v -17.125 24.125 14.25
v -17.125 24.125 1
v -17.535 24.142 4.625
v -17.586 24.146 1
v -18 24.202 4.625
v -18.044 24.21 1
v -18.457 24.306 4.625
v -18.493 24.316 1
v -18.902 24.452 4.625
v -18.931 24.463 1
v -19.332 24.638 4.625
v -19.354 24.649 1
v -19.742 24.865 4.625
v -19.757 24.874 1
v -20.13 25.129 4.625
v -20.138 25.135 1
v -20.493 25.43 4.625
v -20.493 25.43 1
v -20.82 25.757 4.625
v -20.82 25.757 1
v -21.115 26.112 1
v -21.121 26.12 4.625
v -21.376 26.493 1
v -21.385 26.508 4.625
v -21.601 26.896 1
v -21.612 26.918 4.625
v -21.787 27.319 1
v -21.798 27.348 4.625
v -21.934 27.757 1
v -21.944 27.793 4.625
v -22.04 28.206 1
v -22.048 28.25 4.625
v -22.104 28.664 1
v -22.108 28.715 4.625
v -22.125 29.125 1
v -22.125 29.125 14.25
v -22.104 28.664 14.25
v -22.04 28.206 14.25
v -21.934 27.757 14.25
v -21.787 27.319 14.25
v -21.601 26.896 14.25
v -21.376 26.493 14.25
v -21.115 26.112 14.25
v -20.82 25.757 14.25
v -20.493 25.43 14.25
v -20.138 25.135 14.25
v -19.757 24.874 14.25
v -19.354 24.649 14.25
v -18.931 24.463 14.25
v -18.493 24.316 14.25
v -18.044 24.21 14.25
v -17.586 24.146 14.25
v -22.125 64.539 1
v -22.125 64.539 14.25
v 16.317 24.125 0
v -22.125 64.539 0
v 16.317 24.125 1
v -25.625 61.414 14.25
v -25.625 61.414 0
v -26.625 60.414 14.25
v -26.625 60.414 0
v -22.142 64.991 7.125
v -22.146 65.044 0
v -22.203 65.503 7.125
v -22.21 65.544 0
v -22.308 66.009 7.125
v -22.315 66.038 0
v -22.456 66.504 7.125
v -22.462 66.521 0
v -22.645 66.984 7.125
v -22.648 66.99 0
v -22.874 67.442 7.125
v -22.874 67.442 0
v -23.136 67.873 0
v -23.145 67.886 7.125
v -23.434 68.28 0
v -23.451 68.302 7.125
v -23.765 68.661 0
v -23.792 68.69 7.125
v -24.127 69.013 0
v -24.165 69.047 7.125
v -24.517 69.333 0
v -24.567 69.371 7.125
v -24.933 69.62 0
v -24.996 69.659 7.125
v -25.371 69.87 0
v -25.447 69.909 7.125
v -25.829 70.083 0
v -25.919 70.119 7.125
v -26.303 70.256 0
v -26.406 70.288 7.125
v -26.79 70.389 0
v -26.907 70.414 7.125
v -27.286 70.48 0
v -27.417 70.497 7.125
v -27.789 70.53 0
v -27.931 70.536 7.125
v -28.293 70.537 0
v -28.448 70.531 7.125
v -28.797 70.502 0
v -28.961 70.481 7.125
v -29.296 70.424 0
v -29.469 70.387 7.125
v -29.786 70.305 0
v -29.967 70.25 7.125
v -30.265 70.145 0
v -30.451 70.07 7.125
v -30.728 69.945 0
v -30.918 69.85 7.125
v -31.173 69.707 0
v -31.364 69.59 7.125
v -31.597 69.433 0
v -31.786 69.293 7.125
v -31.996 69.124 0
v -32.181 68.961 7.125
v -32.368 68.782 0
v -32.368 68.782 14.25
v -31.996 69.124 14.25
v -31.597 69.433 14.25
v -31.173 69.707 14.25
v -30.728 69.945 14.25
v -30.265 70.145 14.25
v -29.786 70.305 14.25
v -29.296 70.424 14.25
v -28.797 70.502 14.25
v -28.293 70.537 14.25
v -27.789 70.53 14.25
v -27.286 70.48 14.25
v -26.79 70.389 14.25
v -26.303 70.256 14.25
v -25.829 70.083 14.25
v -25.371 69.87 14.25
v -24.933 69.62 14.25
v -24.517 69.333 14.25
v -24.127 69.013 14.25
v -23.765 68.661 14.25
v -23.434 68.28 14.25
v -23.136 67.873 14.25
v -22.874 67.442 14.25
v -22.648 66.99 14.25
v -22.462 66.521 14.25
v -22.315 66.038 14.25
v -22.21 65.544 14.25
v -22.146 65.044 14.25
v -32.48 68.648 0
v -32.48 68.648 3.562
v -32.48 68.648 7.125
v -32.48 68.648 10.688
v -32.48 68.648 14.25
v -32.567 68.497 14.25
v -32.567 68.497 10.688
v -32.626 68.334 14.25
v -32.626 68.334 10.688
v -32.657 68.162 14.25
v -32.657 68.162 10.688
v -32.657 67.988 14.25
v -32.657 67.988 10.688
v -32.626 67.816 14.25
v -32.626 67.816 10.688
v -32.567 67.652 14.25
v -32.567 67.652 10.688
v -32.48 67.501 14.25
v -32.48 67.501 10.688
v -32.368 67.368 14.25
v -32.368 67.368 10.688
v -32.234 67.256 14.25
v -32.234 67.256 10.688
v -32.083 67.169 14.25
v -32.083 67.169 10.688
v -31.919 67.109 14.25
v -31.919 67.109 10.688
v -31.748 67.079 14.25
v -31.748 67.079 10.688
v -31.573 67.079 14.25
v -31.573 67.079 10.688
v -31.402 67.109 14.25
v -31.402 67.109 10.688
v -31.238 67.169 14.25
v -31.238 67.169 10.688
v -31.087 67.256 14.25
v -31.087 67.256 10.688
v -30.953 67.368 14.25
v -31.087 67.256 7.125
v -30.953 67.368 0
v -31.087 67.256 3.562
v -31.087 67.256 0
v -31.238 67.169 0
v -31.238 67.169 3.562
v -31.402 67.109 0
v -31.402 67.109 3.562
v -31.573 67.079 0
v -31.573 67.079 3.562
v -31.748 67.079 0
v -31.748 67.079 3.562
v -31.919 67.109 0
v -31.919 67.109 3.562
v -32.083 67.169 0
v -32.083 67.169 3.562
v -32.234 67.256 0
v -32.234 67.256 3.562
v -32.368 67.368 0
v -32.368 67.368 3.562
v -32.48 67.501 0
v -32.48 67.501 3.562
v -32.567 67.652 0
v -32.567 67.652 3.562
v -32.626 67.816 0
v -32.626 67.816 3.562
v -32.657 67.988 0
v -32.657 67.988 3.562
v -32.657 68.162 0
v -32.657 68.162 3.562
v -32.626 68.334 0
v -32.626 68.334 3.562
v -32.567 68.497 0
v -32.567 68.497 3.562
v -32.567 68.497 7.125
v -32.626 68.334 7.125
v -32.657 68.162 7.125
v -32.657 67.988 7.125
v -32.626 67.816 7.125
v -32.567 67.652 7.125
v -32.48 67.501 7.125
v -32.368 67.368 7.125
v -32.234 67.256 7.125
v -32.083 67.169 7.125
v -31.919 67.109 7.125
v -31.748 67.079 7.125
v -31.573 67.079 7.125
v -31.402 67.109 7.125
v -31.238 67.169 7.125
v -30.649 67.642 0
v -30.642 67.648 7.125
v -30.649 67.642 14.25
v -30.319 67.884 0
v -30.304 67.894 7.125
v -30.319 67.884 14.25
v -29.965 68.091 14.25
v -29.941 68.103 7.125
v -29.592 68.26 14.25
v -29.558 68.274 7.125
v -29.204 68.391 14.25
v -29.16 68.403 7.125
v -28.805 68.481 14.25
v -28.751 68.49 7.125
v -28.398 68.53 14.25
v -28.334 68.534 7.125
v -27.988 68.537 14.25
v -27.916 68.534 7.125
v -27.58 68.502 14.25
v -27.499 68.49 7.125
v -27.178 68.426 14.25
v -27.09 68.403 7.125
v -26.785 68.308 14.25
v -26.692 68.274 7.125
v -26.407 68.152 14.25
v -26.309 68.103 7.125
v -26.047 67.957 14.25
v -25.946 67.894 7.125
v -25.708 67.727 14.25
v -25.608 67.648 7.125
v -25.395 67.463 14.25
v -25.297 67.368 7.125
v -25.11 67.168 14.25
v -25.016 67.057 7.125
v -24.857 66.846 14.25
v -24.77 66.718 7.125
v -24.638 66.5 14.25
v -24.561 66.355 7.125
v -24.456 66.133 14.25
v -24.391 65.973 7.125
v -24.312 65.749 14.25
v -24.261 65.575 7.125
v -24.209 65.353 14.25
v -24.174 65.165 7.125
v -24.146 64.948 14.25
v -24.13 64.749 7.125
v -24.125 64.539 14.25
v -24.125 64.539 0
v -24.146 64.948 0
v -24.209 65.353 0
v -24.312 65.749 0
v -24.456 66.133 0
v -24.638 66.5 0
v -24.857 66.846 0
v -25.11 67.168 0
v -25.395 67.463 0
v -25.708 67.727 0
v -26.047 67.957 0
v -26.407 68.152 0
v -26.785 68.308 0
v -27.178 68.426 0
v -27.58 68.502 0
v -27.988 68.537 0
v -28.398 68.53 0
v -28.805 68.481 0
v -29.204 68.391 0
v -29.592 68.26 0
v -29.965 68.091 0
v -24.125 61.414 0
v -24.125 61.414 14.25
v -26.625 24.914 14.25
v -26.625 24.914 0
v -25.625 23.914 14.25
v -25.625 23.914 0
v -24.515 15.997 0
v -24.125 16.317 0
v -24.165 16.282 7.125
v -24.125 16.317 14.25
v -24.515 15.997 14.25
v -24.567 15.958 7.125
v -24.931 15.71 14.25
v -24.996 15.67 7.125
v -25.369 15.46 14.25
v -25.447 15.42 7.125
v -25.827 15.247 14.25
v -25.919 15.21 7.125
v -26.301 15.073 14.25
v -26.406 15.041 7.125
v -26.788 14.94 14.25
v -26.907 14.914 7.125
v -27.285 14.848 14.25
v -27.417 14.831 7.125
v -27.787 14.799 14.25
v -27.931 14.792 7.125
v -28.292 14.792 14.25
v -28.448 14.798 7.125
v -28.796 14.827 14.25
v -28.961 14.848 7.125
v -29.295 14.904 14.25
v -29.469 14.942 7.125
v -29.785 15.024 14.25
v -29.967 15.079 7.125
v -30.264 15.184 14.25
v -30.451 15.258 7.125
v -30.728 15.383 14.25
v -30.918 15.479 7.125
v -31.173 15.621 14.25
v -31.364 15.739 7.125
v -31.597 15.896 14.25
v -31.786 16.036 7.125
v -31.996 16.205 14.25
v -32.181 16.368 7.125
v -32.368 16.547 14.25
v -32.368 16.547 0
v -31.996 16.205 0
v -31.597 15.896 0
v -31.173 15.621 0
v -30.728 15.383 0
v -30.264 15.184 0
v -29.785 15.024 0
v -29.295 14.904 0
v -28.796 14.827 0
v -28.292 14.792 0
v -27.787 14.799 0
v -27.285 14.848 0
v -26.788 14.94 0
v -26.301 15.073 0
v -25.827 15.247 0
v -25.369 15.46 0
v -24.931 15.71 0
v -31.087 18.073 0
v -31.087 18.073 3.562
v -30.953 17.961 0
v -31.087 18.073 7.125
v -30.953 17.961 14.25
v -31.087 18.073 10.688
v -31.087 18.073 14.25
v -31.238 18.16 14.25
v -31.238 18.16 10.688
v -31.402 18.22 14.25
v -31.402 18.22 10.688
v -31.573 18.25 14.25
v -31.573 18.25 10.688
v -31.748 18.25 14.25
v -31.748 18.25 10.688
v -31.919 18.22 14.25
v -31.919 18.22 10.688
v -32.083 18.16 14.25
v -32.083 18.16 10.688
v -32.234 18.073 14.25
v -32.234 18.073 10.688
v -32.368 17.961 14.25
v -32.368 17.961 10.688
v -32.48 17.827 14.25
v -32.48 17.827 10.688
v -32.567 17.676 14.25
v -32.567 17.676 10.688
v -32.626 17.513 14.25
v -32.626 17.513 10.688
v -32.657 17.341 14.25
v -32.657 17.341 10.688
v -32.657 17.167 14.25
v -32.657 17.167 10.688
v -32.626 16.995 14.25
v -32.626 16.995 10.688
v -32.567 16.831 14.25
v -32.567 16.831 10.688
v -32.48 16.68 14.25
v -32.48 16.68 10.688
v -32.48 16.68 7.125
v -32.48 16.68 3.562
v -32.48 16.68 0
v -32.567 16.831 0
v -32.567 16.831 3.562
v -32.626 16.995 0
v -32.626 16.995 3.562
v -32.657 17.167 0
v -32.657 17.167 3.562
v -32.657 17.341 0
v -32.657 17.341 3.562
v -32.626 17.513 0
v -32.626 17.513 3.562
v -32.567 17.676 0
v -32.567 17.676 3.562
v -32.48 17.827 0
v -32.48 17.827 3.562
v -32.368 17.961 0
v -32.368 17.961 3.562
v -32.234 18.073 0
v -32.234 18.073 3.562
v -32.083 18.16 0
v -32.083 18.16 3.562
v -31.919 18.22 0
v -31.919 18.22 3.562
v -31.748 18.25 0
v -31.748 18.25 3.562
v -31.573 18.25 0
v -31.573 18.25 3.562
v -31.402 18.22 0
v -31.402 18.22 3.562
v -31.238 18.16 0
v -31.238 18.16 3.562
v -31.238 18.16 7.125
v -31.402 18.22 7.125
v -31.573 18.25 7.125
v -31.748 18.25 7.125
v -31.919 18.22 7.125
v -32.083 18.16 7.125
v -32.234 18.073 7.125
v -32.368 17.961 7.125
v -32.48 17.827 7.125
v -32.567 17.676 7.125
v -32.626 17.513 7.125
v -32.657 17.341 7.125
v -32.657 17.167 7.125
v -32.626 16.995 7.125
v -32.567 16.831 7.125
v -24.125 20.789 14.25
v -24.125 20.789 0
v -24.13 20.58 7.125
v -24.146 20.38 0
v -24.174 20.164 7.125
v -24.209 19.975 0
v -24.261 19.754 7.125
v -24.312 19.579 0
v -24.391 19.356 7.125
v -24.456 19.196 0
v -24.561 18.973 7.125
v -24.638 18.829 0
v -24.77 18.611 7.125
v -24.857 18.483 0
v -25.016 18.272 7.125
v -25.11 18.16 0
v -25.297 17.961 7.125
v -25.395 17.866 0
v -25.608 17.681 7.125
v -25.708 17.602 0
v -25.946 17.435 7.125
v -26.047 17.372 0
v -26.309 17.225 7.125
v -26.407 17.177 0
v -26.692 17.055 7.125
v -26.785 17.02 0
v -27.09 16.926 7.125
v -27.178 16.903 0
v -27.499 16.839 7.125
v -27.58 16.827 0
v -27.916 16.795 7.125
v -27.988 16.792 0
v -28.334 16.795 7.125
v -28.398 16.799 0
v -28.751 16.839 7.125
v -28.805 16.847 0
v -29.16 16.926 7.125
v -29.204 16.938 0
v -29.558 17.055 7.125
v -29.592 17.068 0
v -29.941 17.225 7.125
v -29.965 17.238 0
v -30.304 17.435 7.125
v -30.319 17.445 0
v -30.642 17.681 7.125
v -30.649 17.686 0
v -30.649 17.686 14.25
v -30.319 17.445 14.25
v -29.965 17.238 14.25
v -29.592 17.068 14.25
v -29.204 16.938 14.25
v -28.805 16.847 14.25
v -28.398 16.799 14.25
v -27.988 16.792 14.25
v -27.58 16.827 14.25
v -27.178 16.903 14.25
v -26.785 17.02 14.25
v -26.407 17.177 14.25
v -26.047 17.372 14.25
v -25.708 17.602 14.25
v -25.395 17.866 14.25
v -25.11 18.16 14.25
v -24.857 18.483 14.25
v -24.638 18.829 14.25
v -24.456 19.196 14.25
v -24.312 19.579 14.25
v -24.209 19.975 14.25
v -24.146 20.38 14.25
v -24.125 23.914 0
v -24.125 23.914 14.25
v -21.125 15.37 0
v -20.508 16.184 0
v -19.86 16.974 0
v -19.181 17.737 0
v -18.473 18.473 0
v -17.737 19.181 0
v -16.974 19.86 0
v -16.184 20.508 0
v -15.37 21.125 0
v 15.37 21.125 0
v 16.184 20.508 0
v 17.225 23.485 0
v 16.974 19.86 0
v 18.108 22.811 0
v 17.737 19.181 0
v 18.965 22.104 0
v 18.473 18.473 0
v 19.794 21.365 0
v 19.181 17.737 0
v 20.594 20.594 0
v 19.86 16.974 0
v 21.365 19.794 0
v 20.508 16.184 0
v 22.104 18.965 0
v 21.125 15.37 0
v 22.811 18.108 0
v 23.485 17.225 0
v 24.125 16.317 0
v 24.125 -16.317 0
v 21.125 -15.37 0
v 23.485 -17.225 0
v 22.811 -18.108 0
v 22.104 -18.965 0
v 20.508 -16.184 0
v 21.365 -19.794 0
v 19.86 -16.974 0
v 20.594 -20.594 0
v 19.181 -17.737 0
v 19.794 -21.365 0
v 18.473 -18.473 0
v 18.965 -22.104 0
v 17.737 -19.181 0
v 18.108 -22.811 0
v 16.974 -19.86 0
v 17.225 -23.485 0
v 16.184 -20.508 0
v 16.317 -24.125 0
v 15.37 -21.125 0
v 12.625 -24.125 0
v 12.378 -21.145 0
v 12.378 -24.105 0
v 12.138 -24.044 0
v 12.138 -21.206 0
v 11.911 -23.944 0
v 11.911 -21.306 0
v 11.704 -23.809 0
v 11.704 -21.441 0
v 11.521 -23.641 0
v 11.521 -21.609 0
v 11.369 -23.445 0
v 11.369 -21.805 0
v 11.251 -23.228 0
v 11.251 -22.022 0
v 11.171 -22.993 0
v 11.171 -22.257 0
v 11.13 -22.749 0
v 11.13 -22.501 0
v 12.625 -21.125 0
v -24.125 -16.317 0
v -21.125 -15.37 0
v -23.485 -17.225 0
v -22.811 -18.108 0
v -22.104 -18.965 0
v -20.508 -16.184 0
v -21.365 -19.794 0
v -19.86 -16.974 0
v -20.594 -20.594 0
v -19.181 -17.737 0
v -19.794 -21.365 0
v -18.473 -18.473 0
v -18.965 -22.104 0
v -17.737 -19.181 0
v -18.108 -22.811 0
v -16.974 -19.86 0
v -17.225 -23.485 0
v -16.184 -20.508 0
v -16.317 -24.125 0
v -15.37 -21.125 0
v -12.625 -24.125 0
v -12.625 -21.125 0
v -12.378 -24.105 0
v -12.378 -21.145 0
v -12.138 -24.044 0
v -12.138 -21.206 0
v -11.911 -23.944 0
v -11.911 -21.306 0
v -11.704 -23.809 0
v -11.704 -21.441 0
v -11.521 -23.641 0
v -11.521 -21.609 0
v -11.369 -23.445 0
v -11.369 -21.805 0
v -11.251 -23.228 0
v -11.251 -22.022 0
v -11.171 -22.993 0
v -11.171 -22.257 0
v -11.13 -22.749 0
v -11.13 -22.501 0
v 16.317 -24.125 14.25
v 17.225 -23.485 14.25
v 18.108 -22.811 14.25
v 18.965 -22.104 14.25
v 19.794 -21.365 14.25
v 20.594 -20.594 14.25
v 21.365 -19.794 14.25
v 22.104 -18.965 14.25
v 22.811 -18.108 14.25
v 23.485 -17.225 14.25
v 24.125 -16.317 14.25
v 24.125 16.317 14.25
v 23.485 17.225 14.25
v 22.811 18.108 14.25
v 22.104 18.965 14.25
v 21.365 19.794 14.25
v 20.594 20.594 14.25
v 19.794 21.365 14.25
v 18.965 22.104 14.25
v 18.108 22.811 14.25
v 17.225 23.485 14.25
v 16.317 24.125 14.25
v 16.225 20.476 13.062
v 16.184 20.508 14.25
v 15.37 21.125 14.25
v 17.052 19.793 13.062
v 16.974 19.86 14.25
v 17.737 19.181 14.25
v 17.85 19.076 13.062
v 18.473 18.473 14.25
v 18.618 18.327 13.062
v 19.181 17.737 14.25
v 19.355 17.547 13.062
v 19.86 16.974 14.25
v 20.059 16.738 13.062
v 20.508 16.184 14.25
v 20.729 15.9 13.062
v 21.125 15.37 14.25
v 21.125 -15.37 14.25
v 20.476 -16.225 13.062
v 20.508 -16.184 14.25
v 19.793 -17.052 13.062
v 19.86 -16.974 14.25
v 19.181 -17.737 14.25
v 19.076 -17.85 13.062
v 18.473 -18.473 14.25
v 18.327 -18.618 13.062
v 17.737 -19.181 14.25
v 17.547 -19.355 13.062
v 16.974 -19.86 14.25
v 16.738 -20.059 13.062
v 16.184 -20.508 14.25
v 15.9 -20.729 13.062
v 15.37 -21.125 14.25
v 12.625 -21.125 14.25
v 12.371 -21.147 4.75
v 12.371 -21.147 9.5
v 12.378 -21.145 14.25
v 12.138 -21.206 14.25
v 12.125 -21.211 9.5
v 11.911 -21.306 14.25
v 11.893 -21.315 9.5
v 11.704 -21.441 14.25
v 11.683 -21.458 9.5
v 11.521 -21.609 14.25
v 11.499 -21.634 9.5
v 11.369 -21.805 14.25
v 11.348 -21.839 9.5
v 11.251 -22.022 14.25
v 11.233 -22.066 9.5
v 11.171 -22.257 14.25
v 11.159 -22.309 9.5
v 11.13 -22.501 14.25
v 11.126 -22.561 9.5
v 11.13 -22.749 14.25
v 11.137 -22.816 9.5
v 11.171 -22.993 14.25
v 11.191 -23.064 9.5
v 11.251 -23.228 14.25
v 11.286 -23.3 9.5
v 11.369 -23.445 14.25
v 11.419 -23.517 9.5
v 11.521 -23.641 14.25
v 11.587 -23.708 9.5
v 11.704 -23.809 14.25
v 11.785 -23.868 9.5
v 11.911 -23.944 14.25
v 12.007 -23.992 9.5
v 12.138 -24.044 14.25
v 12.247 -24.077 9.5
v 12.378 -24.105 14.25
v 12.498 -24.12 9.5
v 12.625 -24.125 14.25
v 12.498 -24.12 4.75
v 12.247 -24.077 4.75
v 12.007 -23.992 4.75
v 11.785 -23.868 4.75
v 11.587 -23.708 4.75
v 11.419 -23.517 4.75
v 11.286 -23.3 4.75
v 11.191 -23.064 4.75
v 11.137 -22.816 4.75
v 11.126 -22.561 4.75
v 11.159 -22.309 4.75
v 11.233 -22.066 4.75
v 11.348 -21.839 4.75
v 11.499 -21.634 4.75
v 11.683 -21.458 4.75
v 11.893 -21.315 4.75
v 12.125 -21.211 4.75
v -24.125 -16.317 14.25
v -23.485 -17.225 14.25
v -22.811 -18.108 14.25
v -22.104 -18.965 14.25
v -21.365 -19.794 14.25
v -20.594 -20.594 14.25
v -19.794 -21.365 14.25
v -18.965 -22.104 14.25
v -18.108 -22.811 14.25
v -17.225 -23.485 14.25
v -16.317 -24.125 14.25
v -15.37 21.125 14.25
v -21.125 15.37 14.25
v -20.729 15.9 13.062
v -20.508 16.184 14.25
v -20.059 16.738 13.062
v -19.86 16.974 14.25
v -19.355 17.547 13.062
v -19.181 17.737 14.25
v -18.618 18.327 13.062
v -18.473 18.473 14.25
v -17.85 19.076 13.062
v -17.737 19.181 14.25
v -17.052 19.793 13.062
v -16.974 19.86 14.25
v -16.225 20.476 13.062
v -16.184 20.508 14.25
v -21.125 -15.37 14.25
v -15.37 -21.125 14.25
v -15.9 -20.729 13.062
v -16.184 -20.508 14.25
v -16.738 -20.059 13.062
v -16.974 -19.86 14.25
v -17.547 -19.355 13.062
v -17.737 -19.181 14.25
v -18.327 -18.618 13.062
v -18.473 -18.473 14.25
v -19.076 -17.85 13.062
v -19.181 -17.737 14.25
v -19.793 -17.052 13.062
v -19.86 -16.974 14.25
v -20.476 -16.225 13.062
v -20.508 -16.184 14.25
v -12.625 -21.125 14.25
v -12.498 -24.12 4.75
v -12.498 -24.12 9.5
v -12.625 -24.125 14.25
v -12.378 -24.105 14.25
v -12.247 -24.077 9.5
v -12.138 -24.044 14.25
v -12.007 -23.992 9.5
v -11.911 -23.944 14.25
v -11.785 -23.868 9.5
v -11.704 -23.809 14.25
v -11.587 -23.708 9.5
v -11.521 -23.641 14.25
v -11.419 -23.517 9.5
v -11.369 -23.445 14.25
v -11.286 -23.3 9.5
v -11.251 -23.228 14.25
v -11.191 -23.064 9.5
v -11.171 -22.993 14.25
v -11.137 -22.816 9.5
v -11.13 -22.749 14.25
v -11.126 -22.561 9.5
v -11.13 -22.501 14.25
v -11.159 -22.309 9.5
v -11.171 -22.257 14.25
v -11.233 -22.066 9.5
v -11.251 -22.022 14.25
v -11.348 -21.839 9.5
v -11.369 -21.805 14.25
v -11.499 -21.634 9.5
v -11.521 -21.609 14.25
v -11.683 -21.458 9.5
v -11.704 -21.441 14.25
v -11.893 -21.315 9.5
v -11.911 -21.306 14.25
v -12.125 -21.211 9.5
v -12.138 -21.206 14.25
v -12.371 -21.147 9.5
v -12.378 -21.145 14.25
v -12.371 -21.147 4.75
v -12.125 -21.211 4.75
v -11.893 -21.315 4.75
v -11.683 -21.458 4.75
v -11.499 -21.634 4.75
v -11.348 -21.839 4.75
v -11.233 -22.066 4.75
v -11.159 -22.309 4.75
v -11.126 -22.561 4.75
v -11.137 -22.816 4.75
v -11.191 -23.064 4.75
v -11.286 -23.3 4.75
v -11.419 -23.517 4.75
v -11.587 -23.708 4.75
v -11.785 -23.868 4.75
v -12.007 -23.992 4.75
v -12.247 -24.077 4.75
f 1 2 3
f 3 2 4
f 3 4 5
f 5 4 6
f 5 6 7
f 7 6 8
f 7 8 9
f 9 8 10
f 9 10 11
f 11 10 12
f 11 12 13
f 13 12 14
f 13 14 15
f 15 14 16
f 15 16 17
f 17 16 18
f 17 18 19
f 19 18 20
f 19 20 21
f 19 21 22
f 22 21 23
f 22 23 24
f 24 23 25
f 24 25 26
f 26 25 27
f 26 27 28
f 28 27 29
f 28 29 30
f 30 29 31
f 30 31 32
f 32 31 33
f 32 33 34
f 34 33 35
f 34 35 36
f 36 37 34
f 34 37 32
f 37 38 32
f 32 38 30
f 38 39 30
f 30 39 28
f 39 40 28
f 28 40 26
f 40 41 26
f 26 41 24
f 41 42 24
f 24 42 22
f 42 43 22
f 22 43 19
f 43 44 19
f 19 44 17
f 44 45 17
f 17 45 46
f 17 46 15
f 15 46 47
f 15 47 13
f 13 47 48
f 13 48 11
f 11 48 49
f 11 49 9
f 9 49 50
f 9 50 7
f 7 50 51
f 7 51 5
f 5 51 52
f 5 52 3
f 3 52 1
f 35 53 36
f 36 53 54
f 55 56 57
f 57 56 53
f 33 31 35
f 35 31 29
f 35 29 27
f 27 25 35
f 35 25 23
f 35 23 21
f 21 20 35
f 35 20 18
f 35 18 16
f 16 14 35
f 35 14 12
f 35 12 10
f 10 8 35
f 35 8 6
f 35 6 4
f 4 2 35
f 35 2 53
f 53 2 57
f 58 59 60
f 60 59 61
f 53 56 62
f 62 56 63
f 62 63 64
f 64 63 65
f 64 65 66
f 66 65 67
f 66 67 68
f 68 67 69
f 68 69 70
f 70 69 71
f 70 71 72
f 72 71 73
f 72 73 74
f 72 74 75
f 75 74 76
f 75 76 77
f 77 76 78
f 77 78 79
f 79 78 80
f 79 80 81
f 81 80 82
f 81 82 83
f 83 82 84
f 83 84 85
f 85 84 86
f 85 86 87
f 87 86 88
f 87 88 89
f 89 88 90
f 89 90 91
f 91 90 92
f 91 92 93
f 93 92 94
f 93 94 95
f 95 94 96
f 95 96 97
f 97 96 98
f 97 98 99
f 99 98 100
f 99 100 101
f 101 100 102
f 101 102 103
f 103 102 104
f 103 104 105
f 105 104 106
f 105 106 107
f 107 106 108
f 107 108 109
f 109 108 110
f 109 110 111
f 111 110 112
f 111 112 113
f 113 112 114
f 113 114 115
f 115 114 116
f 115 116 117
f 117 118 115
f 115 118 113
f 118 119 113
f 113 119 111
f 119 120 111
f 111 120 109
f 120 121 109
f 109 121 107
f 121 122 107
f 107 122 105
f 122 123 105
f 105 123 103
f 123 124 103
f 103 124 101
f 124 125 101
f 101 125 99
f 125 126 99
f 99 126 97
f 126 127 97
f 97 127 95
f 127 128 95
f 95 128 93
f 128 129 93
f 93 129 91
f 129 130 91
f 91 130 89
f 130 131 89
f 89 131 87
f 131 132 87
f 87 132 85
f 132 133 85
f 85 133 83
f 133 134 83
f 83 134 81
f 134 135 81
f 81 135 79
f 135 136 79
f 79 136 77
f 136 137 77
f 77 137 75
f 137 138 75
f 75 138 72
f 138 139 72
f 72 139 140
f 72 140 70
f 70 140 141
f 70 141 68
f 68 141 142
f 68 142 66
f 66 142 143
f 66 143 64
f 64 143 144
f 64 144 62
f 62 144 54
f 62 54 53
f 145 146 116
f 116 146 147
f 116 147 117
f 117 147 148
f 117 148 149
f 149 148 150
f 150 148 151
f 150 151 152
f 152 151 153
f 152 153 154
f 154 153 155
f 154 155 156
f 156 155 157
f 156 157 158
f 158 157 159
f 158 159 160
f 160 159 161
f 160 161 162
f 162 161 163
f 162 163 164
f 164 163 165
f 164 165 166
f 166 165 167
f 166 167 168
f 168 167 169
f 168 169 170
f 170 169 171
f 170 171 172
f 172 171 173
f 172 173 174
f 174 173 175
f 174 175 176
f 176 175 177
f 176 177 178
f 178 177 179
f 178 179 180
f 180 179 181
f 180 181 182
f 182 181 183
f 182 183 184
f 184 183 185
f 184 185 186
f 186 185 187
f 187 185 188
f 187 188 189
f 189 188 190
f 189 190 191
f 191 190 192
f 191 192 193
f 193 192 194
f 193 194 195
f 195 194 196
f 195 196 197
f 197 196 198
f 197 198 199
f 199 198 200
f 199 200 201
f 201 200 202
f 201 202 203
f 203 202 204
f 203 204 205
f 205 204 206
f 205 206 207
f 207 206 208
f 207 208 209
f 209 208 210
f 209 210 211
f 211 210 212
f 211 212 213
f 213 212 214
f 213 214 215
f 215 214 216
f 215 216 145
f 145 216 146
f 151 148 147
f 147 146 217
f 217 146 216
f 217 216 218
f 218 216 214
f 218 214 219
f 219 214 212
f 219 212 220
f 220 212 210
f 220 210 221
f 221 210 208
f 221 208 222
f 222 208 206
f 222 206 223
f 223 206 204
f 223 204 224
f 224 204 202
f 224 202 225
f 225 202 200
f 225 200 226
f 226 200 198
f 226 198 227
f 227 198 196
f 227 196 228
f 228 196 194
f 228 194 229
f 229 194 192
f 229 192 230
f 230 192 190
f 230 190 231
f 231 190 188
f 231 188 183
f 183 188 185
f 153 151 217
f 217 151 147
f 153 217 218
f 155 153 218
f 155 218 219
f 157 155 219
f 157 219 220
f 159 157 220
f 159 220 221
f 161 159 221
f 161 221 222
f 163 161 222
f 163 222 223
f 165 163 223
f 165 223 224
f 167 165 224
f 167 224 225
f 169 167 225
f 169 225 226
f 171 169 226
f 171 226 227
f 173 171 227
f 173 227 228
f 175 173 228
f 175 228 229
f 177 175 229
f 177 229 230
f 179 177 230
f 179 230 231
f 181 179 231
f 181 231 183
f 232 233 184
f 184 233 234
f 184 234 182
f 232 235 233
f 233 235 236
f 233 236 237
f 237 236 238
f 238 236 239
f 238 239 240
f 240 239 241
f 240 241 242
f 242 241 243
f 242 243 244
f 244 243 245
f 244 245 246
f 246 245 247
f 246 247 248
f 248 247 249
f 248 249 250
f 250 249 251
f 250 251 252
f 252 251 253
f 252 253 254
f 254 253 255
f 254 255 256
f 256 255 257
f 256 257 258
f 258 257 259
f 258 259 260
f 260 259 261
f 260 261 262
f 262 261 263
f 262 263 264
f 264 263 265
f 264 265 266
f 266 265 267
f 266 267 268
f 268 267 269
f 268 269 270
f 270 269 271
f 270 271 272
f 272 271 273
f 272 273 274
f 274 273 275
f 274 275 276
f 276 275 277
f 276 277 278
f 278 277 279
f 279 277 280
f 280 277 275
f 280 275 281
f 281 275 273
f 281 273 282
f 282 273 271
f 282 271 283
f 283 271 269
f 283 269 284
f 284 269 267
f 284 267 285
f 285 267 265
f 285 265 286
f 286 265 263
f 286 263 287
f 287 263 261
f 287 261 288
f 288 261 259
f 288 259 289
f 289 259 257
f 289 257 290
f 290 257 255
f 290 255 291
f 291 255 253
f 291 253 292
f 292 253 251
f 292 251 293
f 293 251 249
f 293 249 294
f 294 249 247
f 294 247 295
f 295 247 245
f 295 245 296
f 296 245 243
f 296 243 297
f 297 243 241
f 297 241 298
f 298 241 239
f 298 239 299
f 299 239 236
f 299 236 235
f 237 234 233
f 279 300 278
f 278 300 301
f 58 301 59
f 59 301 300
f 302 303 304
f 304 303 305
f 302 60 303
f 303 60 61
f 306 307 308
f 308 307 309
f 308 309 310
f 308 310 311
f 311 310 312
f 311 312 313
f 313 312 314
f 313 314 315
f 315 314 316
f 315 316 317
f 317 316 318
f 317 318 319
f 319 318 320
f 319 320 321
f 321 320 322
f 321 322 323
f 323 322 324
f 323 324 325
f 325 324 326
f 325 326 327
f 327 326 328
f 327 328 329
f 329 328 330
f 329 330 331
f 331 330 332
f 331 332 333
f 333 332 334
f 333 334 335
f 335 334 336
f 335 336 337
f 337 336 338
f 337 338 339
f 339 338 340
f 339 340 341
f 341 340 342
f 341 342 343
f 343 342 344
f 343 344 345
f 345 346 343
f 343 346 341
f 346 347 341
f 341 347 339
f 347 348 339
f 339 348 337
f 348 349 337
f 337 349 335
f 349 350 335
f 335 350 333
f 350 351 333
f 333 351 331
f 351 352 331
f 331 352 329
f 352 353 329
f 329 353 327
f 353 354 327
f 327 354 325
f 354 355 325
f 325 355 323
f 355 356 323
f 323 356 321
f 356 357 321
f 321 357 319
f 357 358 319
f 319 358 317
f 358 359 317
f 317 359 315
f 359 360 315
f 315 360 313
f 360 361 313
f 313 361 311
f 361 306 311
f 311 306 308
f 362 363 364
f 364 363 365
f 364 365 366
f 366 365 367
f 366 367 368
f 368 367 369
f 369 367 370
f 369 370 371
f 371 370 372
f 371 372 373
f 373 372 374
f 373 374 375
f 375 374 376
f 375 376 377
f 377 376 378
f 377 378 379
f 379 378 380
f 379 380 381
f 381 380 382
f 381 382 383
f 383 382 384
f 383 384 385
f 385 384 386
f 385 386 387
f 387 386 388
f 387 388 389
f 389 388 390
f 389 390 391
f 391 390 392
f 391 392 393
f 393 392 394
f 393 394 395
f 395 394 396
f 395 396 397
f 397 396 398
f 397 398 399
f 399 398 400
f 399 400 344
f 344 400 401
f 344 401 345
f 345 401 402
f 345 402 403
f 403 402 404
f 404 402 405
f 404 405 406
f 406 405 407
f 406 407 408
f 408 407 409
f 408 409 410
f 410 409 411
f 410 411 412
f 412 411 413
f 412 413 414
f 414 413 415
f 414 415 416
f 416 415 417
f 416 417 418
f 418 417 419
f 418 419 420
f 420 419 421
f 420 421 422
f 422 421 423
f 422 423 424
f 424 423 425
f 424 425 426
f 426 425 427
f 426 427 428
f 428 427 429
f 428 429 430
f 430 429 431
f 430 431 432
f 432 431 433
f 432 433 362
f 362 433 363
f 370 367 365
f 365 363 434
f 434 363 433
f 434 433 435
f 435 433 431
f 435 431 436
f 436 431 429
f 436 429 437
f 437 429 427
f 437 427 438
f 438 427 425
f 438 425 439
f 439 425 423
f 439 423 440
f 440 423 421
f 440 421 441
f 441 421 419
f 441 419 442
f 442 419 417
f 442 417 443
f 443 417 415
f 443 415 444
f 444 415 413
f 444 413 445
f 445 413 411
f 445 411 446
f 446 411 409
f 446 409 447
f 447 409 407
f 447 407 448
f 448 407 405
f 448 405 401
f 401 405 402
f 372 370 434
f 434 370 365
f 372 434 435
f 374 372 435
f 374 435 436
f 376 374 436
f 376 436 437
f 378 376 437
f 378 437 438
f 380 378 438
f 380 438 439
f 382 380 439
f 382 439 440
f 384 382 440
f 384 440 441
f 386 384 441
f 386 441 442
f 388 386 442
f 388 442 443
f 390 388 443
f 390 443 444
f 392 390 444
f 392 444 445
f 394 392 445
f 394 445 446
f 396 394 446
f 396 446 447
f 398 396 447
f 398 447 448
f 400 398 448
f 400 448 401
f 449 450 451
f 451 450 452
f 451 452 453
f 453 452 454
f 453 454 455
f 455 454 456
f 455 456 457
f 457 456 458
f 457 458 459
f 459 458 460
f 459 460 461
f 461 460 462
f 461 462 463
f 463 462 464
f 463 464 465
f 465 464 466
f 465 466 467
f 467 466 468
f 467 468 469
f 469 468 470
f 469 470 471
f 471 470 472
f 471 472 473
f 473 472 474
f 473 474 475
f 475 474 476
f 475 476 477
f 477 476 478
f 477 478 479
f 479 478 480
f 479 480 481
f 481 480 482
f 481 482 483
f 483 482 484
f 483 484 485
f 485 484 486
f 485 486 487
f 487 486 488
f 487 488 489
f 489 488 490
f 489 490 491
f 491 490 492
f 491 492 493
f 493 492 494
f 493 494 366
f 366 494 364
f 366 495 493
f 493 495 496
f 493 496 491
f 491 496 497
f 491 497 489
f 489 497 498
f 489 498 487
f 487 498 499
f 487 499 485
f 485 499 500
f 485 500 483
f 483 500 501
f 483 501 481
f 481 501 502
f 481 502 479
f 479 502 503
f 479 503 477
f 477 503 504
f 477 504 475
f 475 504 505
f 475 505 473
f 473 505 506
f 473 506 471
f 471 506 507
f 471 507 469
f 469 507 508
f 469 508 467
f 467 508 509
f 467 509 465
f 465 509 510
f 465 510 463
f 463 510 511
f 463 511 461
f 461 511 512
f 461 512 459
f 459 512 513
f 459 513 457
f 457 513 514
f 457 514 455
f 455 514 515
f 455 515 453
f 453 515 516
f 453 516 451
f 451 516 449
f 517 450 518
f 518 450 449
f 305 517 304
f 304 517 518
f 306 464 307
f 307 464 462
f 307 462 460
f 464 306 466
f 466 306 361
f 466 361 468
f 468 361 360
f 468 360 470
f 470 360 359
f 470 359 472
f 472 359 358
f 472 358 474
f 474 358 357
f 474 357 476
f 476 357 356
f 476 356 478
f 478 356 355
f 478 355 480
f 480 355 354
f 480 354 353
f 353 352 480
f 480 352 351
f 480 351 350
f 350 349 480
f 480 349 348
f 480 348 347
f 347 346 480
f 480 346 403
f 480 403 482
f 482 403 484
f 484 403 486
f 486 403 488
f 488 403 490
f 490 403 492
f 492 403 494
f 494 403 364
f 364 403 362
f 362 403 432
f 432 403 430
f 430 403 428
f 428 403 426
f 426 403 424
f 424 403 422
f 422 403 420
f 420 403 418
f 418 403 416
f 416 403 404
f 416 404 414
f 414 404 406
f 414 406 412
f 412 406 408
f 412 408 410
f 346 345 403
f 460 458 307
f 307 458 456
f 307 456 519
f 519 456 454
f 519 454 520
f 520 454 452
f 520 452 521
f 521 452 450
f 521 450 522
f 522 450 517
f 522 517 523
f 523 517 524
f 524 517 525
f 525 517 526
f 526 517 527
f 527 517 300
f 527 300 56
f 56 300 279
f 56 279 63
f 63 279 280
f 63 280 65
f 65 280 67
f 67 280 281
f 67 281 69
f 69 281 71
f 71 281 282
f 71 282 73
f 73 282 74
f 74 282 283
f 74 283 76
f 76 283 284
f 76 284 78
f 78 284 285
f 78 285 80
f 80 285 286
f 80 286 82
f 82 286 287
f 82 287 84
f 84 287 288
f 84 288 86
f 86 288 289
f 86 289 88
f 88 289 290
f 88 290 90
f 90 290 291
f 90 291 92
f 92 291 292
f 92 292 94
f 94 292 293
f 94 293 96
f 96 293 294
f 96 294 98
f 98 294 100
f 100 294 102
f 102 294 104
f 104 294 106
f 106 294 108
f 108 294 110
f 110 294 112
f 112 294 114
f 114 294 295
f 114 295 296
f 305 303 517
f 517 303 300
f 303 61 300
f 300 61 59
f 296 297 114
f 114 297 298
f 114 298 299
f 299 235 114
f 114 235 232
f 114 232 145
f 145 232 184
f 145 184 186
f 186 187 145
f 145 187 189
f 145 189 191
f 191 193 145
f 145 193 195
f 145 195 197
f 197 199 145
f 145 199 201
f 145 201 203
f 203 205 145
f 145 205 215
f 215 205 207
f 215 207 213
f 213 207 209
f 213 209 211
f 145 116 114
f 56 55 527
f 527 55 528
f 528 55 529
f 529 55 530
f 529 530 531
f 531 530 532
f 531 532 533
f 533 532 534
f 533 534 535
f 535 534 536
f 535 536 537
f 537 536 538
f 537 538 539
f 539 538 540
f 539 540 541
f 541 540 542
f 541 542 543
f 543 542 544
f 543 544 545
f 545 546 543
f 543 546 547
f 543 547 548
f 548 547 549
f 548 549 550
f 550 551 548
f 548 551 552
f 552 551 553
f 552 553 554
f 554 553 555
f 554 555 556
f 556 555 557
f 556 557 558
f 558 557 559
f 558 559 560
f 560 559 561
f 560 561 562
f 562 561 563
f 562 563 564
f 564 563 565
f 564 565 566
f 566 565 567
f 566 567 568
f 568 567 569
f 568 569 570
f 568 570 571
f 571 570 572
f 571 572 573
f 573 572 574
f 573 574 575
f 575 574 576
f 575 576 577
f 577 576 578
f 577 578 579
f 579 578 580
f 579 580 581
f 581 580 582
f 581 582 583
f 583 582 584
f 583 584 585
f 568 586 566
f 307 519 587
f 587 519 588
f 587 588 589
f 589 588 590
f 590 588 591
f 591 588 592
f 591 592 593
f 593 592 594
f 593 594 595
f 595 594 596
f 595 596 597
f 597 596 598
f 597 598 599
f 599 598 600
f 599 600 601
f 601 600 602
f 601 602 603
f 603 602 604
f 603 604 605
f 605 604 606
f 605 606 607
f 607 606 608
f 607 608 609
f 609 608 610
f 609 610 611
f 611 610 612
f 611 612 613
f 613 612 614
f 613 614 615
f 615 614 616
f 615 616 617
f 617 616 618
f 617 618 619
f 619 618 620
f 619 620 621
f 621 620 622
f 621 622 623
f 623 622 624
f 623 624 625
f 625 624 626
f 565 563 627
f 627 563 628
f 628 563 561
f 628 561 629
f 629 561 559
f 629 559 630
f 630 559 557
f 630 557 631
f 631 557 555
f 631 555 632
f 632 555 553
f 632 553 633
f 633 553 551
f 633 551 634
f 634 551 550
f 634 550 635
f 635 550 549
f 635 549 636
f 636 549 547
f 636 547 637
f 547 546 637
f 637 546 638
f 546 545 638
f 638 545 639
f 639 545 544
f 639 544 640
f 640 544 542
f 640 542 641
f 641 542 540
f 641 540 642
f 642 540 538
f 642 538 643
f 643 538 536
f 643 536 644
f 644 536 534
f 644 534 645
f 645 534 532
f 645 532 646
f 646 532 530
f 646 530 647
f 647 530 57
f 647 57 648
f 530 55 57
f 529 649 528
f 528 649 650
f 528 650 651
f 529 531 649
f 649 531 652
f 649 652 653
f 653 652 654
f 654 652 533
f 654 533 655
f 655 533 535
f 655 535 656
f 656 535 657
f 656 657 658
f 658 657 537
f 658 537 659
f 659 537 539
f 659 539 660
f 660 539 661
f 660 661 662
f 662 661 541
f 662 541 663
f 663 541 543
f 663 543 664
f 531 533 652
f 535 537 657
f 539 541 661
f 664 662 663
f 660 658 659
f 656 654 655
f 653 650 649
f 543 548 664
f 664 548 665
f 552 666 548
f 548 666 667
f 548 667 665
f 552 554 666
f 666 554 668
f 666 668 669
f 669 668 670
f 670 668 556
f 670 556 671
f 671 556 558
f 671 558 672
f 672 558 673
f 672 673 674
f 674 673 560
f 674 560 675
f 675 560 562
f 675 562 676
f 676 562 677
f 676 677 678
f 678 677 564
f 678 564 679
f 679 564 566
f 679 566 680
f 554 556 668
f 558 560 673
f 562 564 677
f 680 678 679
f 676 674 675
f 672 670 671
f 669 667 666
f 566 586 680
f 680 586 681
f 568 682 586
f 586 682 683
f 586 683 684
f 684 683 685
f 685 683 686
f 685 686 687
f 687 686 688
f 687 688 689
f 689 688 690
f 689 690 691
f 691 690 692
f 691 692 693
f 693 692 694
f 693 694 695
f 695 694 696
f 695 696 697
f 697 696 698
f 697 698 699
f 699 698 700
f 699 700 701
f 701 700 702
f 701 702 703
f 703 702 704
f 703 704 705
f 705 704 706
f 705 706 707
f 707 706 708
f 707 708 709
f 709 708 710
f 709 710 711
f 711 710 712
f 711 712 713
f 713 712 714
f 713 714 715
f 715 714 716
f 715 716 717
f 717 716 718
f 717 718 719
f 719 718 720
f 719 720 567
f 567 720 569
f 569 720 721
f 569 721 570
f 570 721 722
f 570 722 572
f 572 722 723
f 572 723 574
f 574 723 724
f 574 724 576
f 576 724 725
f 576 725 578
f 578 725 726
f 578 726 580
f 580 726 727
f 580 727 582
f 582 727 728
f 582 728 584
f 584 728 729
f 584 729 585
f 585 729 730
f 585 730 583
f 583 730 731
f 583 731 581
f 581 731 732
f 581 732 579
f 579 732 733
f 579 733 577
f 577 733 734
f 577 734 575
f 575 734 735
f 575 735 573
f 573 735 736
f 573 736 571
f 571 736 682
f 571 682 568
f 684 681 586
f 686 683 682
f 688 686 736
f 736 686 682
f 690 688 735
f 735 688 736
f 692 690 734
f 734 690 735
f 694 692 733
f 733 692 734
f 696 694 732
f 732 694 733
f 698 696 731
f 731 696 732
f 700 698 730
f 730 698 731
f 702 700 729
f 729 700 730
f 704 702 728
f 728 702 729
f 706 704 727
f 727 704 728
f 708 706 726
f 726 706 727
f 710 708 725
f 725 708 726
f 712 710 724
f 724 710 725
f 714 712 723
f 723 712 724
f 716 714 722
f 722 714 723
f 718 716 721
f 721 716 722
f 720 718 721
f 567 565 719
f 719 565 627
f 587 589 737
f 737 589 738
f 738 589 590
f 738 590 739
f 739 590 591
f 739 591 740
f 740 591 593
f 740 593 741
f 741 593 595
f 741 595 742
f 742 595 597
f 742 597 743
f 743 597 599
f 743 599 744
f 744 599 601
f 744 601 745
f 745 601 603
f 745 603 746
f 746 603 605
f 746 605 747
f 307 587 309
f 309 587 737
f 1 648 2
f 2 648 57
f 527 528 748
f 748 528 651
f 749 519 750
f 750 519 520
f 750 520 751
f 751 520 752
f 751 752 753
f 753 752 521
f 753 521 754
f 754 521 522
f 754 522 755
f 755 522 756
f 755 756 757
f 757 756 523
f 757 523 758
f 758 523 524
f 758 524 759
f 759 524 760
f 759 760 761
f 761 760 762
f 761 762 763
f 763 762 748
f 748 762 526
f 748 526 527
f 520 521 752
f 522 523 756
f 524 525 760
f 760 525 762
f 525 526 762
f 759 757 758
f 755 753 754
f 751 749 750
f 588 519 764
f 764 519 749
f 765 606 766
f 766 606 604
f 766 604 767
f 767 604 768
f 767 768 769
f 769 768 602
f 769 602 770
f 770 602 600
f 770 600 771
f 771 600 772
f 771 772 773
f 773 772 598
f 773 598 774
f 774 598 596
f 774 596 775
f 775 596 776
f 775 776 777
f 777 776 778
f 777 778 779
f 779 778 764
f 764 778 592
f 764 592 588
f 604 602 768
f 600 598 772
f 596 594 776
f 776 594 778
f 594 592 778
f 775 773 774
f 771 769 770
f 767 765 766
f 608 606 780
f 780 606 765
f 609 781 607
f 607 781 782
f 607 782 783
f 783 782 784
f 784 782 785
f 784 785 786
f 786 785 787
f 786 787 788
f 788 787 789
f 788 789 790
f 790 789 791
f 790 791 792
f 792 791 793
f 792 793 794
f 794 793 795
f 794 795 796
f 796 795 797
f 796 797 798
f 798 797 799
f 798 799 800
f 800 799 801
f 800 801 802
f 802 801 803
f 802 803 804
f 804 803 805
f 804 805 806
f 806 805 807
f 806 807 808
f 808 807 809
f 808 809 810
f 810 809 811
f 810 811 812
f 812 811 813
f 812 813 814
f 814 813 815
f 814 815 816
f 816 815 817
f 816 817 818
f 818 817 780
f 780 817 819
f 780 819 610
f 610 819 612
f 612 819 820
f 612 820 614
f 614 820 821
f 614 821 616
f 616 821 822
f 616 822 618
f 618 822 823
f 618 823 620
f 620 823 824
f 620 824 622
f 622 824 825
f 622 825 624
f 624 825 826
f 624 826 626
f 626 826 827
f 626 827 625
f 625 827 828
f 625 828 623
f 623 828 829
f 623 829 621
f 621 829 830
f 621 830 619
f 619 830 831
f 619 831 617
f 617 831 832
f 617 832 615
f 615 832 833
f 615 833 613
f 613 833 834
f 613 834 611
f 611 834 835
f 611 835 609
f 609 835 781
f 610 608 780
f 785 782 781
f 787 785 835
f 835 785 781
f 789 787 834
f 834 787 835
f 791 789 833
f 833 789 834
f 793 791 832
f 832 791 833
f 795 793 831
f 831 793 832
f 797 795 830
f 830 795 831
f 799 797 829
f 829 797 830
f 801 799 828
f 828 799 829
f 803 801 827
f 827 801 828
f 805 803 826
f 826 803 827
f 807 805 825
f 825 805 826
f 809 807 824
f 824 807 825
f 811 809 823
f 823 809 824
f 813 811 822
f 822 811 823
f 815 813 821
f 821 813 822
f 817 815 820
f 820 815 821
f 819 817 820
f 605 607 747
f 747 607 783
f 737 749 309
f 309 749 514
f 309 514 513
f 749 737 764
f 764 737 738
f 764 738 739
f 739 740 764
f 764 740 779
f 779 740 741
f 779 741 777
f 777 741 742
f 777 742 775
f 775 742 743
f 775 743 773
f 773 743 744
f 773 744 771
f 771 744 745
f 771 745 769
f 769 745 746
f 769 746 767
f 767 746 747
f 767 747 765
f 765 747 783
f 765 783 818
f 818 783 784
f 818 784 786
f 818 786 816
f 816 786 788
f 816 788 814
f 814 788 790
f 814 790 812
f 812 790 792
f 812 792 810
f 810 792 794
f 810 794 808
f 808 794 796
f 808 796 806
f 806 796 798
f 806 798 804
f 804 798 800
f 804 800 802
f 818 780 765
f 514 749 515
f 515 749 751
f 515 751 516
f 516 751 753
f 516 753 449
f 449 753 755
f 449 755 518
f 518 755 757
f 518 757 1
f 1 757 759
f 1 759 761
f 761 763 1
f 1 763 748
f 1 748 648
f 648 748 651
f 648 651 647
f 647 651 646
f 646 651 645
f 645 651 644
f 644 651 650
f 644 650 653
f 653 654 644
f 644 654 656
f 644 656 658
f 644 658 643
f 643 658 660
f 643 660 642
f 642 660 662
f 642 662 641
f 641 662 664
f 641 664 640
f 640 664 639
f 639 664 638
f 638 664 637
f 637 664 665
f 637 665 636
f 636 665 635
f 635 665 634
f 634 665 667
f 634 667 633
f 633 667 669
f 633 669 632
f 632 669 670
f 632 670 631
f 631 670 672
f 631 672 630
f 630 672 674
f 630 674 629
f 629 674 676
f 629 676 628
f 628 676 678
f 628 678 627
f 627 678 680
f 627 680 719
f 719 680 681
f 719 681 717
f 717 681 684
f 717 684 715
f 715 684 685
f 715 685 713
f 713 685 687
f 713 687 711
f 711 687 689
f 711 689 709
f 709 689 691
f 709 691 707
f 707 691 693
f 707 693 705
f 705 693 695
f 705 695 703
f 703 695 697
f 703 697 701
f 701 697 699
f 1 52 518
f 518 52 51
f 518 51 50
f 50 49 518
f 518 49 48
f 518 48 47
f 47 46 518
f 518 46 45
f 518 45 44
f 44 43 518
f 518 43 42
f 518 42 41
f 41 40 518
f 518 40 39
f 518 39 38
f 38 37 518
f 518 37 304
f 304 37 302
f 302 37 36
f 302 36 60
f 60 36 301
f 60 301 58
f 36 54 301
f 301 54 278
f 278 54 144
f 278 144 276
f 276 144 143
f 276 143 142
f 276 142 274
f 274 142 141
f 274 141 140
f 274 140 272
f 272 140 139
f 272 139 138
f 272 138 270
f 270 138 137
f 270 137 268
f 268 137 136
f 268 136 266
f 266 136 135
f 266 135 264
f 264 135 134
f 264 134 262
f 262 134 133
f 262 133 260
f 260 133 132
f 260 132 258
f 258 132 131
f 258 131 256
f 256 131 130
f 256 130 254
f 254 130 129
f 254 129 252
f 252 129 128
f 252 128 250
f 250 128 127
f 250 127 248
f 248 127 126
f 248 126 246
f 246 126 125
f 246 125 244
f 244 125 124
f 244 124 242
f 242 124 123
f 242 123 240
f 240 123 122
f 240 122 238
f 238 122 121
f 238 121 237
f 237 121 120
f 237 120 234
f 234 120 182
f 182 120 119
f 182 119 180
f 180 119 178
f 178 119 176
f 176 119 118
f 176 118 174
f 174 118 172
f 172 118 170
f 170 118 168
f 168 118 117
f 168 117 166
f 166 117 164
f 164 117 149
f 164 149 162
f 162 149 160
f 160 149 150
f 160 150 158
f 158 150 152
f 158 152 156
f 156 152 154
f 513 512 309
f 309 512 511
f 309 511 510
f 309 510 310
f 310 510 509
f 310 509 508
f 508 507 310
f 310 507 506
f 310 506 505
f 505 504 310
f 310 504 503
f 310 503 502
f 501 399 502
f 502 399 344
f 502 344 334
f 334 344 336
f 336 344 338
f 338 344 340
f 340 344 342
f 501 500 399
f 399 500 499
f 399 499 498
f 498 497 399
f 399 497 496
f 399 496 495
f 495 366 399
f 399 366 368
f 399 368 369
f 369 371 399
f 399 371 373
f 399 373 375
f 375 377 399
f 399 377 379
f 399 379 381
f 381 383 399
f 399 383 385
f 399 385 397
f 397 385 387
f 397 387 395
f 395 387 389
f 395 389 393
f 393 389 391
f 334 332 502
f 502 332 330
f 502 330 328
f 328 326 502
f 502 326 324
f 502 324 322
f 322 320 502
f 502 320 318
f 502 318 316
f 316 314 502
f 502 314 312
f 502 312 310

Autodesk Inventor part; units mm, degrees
ref_plane "YZ Plane" through (0, 0, 0) normal (1, 0, 0) x (0, 1, 0)
ref_plane "XZ Plane" through (0, 0, 0) normal (0, 1, 0) x (-1, 0, 0)
ref_plane "XY Plane" through (0, 0, 0) normal (0, 0, 1) x (1, 0, 0)
sketch "Sketch1" plane through (0, 0, 0) normal (0, 0, 1) x (1, 0, 0)
  line L0 (-15.3704, -21.125) -> (-12.625, -21.125)
  line L1 (0, 21.125) -> (-15.3704, 21.125)
  line L2 (-21.125, 15.3704) -> (-21.125, -15.3704)
  arc A0 (-15.3704, 21.125) -> (-21.125, 15.3704) centre (0, 0) ccw
  arc A1 (-21.125, -15.3704) -> (-15.3704, -21.125) centre (0, 0) ccw
  line L3 (0, 21.125) -> (0, 24.125)
  line L4 (0, 24.125) -> (-16.3172, 24.125)
  arc A2 (-16.3172, 24.125) -> (-24.125, 16.3172) centre (0, 0) ccw
  line L5 (-24.125, 16.3172) -> (-24.125, -16.3172)
  arc A3 (-24.125, -16.3172) -> (-16.3172, -24.125) centre (0, 0) ccw
  line L6 (-16.3172, -24.125) -> (-12.625, -24.125)
  arc A4 (-12.625, -24.125) -> (-12.625, -21.125) centre (-12.625, -22.625) ccw
  line L7 (-26.625, 42.6643) -> (-26.625, 23.9143)
  line L8 (-26.625, 23.9143) -> (-24.125, 23.9143)
  line L9 (-24.125, 23.9143) -> (-24.125, 20.7893)
  arc A5 (-30.9534, 17.9609) -> (-24.125, 20.7893) centre (-28.125, 20.7893) ccw
  arc A6 (-30.9534, 17.9609) -> (-32.3676, 16.5467) centre (-31.6605, 17.2538) ccw
  arc A7 (-32.3676, 16.5467) -> (-22.125, 20.7893) centre (-28.125, 20.7893) ccw
  line L10 (-31.6605, 17.2538) -> (-28.125, 20.7893) construction
  line L11 (-26.625, 42.6643) -> (-22.125, 42.6643)
  line L12 (-22.125, 42.6643) -> (-22.125, 20.7893)
  line L13 (-16.3172, 24.125) -> (-22.125, 24.125)
  line L14 (-22.125, 42.6643) -> (-22.125, 64.5393)
  line L15 (-22.125, 64.5393) -> (16.3172, 24.125)
  line L16 (16.3172, 24.125) -> (0, 24.125)
  point P0 (-22.6762, 18.2771)
  dimension "d2" = 42.25
  dimension "d3" = 26.125
  dimension "d5" = 21.125
  dimension "d6" = 3
  dimension "d7" = 3
  dimension "d8" = 3
  dimension "d9" = 3
  dimension "d10" = 3
  dimension "d11" = 10
  dimension "d12" = 45
  dimension "d13" = 18.75
  dimension "d14" = 25.875
  dimension "d15" = 4
  dimension "d17" = 2
  dimension "d18" = 2.5
  dimension "d21" = 21.125
  dimension "d33" = 16.3172
  dimension "d34" = 16.3172
  dimension "d35" = 21.875
  dimension "d36" = 21.875
extrude "Extrusion1" add sketch "Sketch1" along normal blind 14.25 contours L0 A4 L6 A3 L5 A7 A2 L4 L3 L1 A0 L2 A1 | A2 A7
mirror "Mirror1" about plane through (0, 0, 0) normal (1, 0, 0)
extrude "Extrusion2" add sketch "Sketch1" along normal blind 14.25 separate body contours A7 A6 A5 L9 L8 L7 L11 L12 A2 | A2 A7
chamfer "Chamfer1" distance 1 angle 45 1 edges at (-26.625, 23.9143, 7.125)
mirror "Mirror2" about plane through (-22.125, 42.6643, 0) normal (0, 1, 0) bodies 2
extrude "Extrusion3" add sketch "Sketch1" along normal blind 1 contours L4 L13 L12 L14 L15 L16 bodies 2
extrude "Extrusion4" add sketch "Sketch1" along normal blind 14.25 contours A7 L12 L13 A2 bodies 2
combine bodies "Combine1" operation type add bodies to combine 2 1
fillet "Fillet1" radius 5 1 edges at (-22.125, 24.125, 7.625)
equation "\"d2\" = d0"
equation "\"d5\" = 0.5 * d2"
equation "\"d7\" = d6"
equation "\"d8\" = d6"
equation "\"d9\" = d6"
equation "\"d10\" = d6"
equation "\"d21\" = 0.5 * d0"
equation "\"d34\" = d33"
equation "\"d35\" = d36"
equation "\"d22\" = d19"
equation "\"d31\" = d19"
equation "\"d0\" = 42.25"
equation "\"d19\" = 14.25"
properties part number "Daiso Phone Printer Adapter"
